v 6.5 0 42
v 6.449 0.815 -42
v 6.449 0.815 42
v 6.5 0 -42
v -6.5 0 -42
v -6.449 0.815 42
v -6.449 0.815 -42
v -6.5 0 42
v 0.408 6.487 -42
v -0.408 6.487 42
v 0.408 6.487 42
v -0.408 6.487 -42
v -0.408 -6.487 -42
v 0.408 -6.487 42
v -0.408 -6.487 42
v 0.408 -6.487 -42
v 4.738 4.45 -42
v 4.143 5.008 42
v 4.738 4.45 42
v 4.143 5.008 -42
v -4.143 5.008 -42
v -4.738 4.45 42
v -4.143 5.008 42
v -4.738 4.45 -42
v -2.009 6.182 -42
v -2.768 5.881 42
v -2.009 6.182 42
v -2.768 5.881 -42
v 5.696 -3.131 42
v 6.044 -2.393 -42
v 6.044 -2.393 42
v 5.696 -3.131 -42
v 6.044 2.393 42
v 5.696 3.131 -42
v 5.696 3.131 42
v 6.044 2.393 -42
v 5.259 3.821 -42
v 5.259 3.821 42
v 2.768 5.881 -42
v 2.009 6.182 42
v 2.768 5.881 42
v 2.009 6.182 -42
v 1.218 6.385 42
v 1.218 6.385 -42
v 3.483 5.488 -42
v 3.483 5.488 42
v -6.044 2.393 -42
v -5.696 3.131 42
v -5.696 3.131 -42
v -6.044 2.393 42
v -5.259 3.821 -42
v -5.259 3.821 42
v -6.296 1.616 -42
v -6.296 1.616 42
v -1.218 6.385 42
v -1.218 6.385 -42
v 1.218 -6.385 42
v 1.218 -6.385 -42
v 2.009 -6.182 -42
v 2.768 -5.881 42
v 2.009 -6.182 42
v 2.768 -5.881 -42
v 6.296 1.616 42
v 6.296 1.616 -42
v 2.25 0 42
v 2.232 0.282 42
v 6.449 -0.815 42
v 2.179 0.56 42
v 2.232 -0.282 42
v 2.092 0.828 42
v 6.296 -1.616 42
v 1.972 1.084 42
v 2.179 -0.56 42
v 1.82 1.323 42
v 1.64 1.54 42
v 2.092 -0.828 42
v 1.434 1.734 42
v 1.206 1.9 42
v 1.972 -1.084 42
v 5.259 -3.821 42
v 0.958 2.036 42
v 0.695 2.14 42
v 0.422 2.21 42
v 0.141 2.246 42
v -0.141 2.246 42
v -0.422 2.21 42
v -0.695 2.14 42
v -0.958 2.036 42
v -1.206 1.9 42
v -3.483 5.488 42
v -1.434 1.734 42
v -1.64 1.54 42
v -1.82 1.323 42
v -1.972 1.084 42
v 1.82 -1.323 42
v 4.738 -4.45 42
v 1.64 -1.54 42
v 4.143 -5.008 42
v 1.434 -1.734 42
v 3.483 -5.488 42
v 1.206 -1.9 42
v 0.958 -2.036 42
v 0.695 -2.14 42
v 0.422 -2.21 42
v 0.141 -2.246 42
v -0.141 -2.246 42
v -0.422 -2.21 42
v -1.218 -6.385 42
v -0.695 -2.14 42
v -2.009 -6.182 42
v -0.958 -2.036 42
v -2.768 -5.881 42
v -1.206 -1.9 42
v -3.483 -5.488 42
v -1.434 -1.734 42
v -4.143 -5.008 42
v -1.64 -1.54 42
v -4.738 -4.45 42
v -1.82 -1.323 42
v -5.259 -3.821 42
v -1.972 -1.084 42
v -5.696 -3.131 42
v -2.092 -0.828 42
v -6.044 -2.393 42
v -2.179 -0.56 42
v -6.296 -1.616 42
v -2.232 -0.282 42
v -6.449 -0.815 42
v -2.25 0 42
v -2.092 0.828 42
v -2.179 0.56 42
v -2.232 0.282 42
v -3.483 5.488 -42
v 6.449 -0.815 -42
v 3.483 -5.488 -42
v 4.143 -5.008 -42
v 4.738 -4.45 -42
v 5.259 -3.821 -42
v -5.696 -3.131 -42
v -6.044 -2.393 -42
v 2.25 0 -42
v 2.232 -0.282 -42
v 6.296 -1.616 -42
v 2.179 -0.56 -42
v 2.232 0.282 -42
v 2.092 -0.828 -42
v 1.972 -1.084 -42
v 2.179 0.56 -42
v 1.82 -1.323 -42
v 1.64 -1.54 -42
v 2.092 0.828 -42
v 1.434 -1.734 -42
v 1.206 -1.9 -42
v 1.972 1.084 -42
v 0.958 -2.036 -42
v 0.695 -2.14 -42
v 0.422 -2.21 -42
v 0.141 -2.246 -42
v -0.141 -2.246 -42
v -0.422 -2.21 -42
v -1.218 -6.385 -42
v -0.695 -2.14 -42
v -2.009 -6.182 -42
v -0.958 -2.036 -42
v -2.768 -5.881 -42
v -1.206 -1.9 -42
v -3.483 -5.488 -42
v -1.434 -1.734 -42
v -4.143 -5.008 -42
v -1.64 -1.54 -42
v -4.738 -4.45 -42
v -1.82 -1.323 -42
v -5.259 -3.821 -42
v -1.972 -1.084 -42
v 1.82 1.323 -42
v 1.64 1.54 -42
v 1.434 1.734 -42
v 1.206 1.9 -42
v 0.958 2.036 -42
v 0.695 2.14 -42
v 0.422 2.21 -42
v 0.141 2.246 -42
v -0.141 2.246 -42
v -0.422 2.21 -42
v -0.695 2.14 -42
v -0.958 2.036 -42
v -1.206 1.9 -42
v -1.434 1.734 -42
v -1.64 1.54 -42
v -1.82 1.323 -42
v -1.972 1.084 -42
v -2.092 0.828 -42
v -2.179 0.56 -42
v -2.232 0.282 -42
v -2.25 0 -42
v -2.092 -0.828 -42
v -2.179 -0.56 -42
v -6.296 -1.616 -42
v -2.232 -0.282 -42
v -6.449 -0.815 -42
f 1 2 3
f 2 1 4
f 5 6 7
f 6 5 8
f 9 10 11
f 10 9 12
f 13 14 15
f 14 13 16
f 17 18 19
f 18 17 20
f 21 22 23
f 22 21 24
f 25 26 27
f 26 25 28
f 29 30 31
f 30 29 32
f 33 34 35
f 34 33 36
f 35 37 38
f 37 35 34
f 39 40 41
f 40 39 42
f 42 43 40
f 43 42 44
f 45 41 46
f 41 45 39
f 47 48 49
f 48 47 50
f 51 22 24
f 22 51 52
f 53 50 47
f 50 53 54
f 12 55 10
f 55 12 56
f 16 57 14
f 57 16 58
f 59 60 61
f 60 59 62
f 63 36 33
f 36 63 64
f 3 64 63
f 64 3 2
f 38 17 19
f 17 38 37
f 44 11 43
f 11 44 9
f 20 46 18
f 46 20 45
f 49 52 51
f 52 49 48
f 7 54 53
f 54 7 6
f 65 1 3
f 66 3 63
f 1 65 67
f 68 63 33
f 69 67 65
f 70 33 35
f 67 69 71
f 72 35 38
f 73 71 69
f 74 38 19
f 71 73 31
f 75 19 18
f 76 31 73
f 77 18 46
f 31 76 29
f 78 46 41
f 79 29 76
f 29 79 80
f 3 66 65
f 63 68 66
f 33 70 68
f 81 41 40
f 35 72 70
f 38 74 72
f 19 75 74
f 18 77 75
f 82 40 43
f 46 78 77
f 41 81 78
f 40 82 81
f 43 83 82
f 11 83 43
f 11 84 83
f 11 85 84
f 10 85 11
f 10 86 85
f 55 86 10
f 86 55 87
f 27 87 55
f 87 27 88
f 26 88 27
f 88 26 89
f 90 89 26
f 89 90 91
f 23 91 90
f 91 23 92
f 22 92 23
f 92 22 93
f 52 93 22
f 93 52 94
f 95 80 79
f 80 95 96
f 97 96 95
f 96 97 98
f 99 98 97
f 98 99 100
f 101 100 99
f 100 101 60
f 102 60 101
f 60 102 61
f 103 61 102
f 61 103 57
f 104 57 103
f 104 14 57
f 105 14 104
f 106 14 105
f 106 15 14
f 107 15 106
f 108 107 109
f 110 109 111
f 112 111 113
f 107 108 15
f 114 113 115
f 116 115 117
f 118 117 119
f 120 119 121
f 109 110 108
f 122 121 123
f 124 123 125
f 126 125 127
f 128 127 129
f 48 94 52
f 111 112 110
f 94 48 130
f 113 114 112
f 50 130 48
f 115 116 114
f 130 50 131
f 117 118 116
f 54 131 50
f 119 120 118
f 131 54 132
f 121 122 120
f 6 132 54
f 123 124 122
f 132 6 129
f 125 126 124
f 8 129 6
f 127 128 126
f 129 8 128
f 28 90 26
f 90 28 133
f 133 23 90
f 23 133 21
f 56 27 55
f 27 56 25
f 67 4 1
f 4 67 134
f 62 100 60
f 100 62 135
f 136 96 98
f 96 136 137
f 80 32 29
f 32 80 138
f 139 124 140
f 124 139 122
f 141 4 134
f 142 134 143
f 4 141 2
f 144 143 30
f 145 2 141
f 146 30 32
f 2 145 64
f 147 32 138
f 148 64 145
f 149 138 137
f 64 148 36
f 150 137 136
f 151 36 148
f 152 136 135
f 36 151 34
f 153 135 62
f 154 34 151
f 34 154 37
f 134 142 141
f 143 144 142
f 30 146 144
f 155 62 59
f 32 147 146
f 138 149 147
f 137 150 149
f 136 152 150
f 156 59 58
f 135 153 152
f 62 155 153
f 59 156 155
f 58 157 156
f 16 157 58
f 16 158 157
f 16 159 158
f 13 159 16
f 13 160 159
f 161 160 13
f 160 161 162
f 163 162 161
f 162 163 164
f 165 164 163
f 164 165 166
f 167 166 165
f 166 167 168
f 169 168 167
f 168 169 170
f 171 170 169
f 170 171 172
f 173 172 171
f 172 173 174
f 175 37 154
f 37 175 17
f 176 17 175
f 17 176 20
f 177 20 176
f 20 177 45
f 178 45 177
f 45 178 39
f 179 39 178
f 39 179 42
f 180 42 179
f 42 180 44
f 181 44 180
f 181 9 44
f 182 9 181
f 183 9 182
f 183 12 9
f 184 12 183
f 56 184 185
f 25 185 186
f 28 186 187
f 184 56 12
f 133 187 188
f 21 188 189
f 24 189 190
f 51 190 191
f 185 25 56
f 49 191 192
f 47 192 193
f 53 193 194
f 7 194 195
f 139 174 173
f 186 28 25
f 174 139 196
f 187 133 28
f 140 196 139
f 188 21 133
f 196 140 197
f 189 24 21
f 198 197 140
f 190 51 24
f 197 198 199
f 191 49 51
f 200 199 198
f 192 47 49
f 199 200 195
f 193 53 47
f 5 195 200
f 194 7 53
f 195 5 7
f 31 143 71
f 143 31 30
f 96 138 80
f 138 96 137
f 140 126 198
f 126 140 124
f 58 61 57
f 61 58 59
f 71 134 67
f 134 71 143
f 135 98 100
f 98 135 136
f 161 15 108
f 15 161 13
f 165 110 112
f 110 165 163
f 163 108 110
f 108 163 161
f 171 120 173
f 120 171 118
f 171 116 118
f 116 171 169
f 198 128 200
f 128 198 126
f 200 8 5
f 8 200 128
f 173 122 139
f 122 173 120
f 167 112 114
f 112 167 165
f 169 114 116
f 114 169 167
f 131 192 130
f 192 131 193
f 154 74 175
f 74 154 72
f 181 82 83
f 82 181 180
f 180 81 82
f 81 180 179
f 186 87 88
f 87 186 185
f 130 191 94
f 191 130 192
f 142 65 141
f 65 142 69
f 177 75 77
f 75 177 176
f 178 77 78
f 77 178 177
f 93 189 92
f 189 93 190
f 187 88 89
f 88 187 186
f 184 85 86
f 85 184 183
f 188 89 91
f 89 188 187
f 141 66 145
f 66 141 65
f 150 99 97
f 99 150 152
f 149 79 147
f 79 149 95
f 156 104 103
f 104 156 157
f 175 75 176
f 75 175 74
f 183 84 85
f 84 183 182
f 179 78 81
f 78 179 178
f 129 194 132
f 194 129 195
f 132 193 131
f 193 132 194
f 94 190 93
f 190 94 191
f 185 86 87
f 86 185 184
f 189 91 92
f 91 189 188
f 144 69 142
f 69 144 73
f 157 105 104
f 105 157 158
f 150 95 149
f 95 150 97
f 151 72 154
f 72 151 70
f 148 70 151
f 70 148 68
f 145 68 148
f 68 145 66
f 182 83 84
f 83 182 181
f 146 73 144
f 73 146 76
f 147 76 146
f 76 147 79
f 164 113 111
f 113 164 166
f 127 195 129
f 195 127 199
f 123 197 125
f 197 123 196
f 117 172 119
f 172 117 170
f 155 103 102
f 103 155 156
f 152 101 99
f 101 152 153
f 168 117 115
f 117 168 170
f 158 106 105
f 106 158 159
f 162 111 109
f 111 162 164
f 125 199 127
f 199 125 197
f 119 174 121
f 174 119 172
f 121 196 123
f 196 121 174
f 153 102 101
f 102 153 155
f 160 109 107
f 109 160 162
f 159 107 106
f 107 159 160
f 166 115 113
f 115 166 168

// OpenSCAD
$fn = 50;


difference() {
	union() {
		translate(v = [0, 0, -42.0000000000]) {
			cylinder(h = 84, r = 6.5000000000);
		}
	}
	union() {
		translate(v = [0, 0, -100.0000000000]) {
			cylinder(h = 200, r = 2.2500000000);
		}
	}
}
